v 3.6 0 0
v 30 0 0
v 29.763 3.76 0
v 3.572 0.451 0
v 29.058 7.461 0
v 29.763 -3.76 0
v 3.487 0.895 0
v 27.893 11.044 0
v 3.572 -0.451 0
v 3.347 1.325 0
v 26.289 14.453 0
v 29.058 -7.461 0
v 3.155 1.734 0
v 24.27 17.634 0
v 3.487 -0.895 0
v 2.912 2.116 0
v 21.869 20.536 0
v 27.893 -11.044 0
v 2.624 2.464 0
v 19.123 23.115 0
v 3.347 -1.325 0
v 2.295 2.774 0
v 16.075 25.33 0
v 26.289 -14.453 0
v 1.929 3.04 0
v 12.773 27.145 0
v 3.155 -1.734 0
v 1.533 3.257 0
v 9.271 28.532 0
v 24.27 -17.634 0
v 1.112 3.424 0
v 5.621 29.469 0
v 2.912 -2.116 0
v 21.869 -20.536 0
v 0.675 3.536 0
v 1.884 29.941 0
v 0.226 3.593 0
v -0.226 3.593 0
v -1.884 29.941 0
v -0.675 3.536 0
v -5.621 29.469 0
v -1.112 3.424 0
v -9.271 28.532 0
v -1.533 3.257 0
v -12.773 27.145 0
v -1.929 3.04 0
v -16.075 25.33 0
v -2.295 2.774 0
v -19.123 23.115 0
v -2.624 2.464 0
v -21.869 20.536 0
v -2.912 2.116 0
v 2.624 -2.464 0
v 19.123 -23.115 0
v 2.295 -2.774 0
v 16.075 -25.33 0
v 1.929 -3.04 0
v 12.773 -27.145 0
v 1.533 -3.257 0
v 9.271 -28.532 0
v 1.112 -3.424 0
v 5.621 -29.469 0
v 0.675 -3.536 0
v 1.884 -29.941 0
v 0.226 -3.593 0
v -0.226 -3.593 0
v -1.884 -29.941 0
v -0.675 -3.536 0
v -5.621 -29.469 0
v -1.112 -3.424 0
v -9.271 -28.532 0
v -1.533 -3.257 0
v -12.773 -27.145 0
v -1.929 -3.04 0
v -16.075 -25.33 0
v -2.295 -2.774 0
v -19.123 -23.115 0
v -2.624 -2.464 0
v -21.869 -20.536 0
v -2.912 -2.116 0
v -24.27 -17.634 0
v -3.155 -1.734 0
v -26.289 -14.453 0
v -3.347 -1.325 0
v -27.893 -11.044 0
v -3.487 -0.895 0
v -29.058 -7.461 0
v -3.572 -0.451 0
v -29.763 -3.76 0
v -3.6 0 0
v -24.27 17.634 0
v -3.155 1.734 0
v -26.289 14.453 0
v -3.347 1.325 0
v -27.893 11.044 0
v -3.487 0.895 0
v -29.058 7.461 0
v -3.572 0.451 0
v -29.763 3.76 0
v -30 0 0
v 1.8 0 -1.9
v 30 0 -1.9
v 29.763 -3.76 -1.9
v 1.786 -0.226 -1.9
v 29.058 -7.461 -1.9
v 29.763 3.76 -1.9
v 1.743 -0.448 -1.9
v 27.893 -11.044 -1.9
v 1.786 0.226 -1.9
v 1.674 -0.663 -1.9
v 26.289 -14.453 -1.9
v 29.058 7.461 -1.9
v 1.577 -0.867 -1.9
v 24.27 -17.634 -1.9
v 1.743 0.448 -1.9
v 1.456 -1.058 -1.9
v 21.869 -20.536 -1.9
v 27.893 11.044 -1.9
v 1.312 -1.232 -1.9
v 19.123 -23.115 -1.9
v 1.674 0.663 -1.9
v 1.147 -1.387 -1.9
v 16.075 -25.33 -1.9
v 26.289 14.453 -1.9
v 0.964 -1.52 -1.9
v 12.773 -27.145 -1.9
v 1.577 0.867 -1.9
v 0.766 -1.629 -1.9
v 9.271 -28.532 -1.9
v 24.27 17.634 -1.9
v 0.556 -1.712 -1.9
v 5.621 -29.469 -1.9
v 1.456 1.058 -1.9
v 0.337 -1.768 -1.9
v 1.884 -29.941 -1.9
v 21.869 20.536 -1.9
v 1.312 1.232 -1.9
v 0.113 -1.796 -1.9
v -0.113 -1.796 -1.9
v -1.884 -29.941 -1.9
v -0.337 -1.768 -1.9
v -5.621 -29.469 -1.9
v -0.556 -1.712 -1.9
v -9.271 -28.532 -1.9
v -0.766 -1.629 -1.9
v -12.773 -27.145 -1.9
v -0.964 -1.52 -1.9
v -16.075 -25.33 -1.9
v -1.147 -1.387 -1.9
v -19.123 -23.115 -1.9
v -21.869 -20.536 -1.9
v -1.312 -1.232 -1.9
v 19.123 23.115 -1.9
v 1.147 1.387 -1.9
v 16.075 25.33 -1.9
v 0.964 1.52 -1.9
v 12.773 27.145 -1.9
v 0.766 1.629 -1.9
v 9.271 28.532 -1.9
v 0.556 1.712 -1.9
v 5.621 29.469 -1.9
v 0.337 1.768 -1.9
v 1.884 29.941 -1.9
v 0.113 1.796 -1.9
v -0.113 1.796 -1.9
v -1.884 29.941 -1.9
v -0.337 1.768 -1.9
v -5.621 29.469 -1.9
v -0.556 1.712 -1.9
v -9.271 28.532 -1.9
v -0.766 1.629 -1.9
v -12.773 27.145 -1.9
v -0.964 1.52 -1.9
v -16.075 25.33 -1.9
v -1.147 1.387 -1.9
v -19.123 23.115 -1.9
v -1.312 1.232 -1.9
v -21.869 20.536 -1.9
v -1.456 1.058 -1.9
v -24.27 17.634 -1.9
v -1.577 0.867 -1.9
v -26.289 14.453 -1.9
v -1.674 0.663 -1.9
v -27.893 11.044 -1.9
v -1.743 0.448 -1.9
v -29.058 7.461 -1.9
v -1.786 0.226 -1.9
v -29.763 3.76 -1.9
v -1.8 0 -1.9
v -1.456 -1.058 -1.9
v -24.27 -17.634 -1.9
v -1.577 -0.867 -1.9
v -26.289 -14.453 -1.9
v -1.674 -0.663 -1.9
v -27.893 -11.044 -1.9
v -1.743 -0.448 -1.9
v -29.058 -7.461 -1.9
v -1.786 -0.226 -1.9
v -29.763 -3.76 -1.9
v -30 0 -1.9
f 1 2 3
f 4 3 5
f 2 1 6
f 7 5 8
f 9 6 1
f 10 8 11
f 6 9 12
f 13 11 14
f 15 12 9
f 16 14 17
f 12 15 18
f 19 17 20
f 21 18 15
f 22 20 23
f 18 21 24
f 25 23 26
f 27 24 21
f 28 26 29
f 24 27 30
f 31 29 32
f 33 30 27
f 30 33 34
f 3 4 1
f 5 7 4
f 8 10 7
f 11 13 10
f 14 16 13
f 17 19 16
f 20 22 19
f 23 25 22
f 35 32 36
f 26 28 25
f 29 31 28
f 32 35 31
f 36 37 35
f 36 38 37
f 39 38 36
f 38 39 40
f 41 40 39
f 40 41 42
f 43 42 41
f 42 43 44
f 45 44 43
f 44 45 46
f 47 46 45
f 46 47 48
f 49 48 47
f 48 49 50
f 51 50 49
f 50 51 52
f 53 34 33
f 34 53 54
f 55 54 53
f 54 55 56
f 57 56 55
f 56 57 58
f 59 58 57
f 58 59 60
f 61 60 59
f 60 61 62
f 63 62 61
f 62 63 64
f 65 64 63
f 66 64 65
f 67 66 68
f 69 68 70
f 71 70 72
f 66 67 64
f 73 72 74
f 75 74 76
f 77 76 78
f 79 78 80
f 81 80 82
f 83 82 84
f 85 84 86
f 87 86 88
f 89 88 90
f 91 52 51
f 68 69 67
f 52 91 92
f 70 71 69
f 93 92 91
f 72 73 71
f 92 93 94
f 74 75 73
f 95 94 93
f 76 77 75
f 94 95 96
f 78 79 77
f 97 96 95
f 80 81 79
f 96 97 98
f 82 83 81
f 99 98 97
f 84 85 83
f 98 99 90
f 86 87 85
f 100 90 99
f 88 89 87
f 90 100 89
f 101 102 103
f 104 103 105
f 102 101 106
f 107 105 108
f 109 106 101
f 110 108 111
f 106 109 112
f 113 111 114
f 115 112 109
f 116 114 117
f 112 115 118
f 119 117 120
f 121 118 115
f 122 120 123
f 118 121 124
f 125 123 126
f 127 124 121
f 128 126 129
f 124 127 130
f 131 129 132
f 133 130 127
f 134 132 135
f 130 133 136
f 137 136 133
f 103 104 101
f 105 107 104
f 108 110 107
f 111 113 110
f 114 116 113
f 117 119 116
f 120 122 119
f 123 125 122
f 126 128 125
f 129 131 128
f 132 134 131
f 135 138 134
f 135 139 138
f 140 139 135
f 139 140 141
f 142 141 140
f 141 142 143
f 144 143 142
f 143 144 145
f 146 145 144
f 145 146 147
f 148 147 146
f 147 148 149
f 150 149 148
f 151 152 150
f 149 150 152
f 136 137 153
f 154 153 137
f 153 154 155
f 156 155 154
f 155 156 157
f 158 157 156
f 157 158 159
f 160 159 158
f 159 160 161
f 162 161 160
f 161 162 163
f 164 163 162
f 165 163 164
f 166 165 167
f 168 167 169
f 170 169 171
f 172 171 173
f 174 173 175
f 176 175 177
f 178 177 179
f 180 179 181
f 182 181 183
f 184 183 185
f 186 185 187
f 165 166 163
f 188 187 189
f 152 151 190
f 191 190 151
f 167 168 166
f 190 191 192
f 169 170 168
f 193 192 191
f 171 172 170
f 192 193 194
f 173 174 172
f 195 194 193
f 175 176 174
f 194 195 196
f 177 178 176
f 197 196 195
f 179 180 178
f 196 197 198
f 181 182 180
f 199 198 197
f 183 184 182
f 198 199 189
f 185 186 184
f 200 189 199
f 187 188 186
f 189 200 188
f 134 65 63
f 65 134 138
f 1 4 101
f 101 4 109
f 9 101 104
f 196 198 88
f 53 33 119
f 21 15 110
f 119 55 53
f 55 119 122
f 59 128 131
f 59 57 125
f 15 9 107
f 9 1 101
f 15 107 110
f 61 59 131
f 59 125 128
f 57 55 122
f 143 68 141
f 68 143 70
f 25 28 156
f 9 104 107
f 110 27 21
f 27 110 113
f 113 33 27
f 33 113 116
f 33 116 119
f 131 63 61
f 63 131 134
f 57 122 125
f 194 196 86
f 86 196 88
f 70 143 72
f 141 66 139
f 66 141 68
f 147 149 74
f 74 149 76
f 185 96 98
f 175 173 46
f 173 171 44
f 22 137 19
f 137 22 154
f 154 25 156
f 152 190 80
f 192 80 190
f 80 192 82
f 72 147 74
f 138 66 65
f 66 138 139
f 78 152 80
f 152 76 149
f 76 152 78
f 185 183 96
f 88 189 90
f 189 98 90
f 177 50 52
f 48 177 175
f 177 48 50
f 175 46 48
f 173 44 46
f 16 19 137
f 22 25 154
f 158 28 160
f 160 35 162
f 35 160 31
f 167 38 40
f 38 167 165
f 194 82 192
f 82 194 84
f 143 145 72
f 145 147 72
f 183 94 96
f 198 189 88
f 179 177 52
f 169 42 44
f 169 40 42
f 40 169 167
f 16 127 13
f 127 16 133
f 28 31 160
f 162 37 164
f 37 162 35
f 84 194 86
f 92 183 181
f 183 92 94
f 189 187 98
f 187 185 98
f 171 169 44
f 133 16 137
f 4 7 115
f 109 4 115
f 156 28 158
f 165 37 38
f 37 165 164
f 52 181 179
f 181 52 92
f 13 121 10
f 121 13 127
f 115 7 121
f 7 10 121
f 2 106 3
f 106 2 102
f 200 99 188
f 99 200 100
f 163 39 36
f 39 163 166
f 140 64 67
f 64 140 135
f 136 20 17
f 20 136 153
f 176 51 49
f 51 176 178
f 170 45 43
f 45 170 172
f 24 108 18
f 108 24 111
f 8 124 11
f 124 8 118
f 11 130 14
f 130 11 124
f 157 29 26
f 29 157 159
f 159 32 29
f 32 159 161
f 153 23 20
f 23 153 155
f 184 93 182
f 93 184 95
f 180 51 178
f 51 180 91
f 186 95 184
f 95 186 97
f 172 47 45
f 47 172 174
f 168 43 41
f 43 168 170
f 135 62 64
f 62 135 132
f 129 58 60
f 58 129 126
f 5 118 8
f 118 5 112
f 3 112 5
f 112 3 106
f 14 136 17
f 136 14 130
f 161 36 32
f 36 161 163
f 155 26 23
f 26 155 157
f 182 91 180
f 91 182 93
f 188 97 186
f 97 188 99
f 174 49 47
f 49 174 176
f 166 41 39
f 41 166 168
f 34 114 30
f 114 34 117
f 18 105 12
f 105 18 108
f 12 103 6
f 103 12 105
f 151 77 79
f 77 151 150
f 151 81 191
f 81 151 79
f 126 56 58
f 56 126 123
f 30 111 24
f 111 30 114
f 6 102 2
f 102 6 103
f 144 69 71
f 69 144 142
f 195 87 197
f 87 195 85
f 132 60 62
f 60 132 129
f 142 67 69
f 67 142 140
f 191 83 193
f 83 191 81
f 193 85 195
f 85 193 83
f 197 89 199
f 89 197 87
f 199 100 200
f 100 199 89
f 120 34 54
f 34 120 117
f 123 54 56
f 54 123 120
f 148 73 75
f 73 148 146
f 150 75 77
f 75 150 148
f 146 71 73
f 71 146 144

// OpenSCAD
$fn = 50;


difference() {
	union() {
		translate(v = [0, 0, -1.9000000000]) {
			cylinder(h = 1.9000000000, r = 30.0000000000);
		}
	}
	union() {
		translate(v = [0, 0, 0]) {
			rotate(a = [0, 0, 0]) {
				difference() {
					union() {
						#translate(v = [0, 0, -1.9000000000]) {
							cylinder(h = 1.9000000000, r = 1.5000000000);
						}
						#translate(v = [0, 0, -1.9000000000]) {
							cylinder(h = 1.9000000000, r1 = 1.8000000000, r2 = 3.6000000000);
						}
						#translate(v = [0, 0, -1.9000000000]) {
							cylinder(h = 1.9000000000, r = 1.8000000000);
						}
						#translate(v = [0, 0, -1.9000000000]) {
							cylinder(h = 1.9000000000, r = 1.5000000000);
						}
					}
					union();
				}
			}
		}
	}
}
